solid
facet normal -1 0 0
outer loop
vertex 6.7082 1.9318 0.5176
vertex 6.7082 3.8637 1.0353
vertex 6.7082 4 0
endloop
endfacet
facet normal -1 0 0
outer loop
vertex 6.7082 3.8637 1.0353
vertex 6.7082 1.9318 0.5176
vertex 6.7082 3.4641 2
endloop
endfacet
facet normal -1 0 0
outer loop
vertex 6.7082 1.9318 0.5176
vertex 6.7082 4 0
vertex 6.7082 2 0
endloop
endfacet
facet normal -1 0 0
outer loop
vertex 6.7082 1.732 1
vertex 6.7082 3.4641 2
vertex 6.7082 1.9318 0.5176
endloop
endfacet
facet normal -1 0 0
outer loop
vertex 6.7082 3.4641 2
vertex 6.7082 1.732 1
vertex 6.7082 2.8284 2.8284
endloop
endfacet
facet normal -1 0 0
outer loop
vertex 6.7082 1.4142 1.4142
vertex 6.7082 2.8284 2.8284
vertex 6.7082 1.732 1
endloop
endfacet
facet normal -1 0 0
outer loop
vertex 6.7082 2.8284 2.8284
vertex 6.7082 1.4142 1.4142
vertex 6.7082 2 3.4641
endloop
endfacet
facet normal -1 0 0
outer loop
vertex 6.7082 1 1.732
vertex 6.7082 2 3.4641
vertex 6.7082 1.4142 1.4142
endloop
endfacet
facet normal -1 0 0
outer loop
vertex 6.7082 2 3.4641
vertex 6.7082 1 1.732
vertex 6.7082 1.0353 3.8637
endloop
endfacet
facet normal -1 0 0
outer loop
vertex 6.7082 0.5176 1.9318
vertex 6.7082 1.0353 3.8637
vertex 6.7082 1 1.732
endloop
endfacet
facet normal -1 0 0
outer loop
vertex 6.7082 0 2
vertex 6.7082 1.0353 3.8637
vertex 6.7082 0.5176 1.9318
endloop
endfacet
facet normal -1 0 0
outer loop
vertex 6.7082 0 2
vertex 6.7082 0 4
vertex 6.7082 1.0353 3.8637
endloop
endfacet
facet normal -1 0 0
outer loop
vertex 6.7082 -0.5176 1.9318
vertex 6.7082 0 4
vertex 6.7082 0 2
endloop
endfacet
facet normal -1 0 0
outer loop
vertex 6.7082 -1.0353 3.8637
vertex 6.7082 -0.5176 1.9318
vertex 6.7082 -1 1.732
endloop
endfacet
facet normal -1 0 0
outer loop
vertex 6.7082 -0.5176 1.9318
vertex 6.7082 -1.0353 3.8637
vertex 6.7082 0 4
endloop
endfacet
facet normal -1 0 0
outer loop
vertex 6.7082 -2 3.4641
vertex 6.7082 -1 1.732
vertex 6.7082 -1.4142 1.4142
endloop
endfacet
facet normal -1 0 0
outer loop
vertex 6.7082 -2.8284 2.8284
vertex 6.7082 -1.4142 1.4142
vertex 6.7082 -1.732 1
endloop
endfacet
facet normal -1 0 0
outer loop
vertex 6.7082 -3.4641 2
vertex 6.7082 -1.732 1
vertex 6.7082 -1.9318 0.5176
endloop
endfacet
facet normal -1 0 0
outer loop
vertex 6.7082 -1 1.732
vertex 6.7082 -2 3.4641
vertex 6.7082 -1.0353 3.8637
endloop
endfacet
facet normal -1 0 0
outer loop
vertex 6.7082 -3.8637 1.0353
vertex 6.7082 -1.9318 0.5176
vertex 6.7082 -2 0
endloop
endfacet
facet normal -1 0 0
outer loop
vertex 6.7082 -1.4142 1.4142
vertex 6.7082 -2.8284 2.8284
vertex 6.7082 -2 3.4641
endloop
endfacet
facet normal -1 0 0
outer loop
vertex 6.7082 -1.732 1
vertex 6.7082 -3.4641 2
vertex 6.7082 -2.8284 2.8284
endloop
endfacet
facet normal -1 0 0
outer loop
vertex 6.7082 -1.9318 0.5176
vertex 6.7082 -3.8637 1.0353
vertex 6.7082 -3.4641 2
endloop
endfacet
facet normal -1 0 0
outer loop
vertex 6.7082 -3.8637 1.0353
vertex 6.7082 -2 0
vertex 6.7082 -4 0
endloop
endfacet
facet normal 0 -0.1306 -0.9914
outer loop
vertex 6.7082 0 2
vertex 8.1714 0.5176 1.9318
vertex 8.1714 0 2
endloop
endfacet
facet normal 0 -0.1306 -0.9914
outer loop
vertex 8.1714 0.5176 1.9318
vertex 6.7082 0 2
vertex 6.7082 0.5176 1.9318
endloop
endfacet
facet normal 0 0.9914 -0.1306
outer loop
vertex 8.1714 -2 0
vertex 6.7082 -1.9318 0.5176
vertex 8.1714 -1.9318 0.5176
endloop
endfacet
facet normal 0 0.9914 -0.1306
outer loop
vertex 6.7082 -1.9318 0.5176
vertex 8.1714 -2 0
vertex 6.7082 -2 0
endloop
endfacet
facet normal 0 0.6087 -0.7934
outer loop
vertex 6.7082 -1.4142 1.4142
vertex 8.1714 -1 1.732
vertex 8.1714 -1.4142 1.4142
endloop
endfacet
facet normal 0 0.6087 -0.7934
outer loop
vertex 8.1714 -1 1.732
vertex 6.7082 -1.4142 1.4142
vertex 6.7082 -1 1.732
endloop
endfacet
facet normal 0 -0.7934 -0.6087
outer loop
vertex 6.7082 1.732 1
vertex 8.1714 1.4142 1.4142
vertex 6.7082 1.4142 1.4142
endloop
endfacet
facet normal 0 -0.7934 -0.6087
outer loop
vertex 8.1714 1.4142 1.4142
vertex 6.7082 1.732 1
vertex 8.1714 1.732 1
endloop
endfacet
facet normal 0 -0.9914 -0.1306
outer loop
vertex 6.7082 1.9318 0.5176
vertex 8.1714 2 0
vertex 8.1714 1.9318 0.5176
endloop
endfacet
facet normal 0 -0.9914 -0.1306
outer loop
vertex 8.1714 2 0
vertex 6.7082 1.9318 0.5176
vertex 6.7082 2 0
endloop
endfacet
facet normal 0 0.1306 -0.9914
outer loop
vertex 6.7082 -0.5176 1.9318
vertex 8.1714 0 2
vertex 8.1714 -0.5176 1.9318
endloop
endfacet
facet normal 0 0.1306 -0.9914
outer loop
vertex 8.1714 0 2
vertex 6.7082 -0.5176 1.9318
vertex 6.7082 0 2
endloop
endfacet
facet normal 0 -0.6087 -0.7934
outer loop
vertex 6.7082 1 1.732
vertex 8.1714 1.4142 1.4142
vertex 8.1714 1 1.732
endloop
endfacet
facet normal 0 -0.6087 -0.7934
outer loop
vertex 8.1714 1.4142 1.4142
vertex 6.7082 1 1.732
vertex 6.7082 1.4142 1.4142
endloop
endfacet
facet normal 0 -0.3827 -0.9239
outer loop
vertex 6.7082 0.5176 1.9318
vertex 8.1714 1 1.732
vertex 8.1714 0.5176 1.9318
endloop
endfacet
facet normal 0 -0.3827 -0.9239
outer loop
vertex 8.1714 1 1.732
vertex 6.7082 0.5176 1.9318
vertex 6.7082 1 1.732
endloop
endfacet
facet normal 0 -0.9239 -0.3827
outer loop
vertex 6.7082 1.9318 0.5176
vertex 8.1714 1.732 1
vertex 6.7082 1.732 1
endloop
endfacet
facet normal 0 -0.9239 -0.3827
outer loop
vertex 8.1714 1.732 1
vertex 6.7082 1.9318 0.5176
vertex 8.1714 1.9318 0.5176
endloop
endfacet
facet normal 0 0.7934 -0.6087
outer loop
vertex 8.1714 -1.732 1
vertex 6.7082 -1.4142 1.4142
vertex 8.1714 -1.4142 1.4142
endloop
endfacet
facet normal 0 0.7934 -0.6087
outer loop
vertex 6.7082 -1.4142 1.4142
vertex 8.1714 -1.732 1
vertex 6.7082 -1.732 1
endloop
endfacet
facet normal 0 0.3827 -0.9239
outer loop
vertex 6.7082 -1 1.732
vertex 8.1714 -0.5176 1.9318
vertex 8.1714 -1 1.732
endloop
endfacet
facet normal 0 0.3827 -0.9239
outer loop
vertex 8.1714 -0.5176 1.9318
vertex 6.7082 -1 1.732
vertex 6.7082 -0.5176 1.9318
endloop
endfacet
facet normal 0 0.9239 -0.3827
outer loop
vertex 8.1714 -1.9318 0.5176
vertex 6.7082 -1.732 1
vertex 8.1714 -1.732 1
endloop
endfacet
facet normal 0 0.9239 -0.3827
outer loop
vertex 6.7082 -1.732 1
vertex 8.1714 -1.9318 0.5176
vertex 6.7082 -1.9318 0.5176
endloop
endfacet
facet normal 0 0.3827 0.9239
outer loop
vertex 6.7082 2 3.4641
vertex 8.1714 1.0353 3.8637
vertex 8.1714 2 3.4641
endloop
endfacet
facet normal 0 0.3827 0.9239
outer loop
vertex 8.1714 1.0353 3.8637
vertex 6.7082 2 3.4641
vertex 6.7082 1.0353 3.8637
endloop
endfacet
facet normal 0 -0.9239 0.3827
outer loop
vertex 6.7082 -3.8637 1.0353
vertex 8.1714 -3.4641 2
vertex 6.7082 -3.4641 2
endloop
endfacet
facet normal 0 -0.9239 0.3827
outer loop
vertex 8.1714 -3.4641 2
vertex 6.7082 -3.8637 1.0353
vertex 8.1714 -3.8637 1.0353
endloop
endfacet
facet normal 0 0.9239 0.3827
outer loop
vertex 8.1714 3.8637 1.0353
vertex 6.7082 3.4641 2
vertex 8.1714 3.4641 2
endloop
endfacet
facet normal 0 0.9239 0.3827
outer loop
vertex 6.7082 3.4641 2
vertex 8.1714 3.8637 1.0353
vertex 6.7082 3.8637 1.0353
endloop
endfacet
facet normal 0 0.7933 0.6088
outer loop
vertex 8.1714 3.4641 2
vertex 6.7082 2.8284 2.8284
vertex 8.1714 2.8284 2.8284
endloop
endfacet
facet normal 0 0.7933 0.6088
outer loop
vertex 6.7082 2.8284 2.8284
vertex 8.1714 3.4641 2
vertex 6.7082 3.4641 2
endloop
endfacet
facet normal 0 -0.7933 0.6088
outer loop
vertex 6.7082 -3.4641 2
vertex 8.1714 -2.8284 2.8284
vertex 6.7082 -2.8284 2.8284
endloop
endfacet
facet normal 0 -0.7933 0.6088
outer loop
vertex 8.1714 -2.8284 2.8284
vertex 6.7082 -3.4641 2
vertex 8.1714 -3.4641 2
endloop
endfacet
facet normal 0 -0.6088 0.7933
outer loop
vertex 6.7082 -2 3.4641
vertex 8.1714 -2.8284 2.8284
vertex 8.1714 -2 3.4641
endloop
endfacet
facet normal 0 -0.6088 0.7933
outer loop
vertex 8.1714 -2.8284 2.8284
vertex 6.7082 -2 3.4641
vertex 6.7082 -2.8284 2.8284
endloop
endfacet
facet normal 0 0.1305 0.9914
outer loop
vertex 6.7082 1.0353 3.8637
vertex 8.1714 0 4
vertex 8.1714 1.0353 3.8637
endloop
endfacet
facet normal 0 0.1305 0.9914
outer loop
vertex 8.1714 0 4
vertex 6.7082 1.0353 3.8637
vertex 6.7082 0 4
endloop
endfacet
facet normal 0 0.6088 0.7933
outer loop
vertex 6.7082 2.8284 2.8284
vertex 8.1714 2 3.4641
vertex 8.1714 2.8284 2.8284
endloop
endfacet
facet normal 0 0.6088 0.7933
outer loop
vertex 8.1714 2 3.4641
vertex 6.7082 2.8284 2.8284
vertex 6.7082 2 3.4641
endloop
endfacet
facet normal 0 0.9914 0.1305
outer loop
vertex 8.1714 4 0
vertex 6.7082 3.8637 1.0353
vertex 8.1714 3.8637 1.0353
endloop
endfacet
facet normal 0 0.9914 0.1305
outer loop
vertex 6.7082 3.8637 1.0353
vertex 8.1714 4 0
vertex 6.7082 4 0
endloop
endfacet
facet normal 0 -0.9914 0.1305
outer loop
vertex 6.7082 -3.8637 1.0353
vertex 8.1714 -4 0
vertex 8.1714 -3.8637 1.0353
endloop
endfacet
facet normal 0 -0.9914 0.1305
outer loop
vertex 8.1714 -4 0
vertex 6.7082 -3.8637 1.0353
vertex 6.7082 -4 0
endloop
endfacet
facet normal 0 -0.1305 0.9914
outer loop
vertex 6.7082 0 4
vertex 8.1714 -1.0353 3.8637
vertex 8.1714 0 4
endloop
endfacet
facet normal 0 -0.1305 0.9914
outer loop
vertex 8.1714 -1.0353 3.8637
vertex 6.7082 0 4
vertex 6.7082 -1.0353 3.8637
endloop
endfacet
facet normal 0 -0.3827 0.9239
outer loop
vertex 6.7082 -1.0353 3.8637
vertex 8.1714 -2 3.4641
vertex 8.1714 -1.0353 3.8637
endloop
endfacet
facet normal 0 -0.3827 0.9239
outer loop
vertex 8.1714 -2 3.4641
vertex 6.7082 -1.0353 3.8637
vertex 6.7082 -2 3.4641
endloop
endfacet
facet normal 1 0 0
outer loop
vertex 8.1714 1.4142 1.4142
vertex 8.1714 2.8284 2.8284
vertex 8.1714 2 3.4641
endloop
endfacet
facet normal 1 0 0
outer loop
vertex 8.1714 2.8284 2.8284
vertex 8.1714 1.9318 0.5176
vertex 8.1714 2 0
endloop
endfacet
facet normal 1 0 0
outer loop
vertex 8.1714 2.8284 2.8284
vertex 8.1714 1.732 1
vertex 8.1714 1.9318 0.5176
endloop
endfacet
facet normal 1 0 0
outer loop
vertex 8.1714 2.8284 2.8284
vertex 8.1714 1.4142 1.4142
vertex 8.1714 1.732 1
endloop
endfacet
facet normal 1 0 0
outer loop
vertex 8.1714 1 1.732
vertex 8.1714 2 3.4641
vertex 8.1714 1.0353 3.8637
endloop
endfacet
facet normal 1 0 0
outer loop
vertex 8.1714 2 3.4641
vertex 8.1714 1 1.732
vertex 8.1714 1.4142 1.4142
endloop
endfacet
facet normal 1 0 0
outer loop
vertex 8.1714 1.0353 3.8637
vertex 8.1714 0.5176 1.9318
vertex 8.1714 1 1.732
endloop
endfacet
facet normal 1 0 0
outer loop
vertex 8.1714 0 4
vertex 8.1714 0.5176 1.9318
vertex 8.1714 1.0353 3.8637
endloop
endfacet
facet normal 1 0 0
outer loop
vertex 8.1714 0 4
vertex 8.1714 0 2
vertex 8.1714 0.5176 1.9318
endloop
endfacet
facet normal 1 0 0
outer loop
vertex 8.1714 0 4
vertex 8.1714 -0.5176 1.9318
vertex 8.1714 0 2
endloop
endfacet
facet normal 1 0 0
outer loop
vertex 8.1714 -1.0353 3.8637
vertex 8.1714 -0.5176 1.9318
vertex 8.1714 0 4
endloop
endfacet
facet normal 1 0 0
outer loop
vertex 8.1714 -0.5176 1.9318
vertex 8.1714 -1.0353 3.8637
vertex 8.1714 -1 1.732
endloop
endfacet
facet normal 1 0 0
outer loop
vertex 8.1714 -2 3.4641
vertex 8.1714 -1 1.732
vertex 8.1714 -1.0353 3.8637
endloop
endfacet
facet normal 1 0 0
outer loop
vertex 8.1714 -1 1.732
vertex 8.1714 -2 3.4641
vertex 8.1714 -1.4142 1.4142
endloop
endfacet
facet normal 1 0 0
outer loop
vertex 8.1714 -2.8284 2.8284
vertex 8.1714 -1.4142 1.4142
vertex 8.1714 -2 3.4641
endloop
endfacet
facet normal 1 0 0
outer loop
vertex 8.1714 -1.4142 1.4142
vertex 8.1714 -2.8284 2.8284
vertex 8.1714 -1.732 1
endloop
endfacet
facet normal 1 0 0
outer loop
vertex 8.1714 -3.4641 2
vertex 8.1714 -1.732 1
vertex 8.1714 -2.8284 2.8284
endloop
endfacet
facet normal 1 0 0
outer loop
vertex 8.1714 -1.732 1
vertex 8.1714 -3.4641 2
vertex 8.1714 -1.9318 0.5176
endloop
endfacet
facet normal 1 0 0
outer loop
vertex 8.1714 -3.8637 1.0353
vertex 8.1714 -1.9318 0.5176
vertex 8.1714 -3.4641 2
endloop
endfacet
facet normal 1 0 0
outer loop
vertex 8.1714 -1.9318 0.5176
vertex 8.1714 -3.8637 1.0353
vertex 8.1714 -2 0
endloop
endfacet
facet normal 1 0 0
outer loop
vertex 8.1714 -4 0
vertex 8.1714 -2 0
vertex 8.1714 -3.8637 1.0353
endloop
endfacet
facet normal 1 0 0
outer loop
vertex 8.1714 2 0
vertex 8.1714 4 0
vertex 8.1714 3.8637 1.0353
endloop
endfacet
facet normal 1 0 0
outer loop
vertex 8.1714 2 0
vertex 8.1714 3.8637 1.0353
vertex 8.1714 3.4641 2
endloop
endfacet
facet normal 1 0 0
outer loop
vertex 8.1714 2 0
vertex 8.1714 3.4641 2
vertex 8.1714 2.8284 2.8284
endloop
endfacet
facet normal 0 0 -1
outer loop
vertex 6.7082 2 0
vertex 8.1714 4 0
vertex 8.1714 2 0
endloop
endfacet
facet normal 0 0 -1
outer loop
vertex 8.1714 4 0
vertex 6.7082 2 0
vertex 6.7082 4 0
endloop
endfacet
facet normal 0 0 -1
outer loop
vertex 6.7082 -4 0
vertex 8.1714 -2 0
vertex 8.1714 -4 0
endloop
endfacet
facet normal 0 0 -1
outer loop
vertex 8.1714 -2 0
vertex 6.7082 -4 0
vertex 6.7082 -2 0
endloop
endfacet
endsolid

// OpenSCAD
// file: ../build_environments.scad
// build_environments.scad: modules to build level sections
//

module pool(diameter=10.0, wall_height=2.0, step_width=3.0, connections=[])
{
    difference() {
        union() {
        difference() {
            cylinder(h=0.5,r1=diameter+step_width,r2=diameter+step_width,$fn=48);
            translate([0,0,-0.1])
                cylinder(h=0.7,r1=diameter,r2=diameter,$fn=48);
        }
        difference() {
            cylinder(h=wall_height,r1=diameter+step_width+1.0,r2=diameter+step_width+1.0,$fn=48);
            translate([0,0,-0.1])
                cylinder(h=wall_height+0.2,r1=diameter+step_width,r2=diameter+step_width,$fn=48);
        }
        }
    
        for (c = connections)
        {
            rotate([0,90,0]) {
                angle = atan2(c[1],c[0]);
                rotate([-angle,0,0]) {
                    cylinder(h=diameter+5.0,r1=c[2],r2=c[2],$fn=48);
                }
            }
        }
    }
}

module straight(length=10.0, width=2.0, dy1=0.0, dy2=0.0, dz=0.0)
{
    dims = [0, 0, 0, 0, 0, (dz/length)];
    matrix = [
        [ 1, dims[0], dims[1], 0 ],
        [ dims[2], 1, dims[4], 0 ],
        [ dims[5], dims[3], 1, 0 ],
        [ 0, 0, 0, 1 ]
    ];
    multmatrix(matrix)
    difference() {
        translate([dy1,0,0])
        union() {
            rotate([0,90,0]) {
                difference() {
                    cylinder(h=(length-dy1-dy2),r1=width+1.0,r2=width+1.0,$fn=24);
                    translate([0,0,-0.1])
                        cylinder(h=(length-dy1-dy2+0.2),r1=width,r2=width,$fn=24);
                }
                difference() {
                    cylinder(h=1.0,r1=width+2.0,r2=width+2.0,$fn=24);
                    translate([0,0,-0.1])
                        cylinder(h=1.2,r1=width,r2=width,$fn=24);
                }
                translate([0,0,(length-dy1-dy2)-1.0]) {
                    difference() {
                        cylinder(h=1.0,r1=width+2.0,r2=width+2.0,$fn=24);
                        translate([0,0,-0.1])
                            cylinder(h=1.2,r1=width,r2=width,$fn=24);
                    }
                }
            }
        }
        translate([0,0,-(2*width+4.0)/2])
            cube([3*length,3*length,2*width+4.0],center=true);
    }
}

module curve(p0=[0,0], center=[0,0], dir=1, angle=0.0, width=2.0)
{
    radius = sqrt((p0[0]-center[0])*(p0[0]-center[0]) + (p0[1]-center[1])*(p0[1]-center[1]));
    if (dir == 0) {
        difference() {
            rotate([0,0,-90])
            difference() {
                rotate_extrude(angle = angle, convexity = 10, $fn=32)
                    translate([radius, 0, 0])
                        circle(r = width+1.0,$fn=24);
                rotate([0,0,-1.0])
                    rotate_extrude(angle = angle+2.0, convexity = 10, $fn=32)
                        translate([radius, 0, 0])
                            circle(r = width,$fn=24);
            }
            translate([0,0,-(2*width+4.0)/2])
                cube([5*radius,5*radius,2*width+4.0],center=true);
        }
    }
    else {
        difference() {
            rotate([0,0,90])
            difference() {
                rotate_extrude(angle = -angle, convexity = 10, $fn=32)
                    translate([radius, 0, 0])
                        circle(r = width+1.0,$fn=24);
                rotate([0,0,1.0])
                    rotate_extrude(angle = -angle-2.0, convexity = 10, $fn=32)
                        translate([radius, 0, 0])
                            circle(r = width,$fn=24);
            }
            translate([0,0,-(2*width+4.0)/2])
                cube([5*radius,5*radius,2*width+4.0],center=true);
        }
    }

}

// test pool
//pool(diameter=12.0000, wall_height=3.0000, step_width=3.0000, connections=[[0.0000,-26.0000,2.0000], [23.6074,0.0000,2.0000]]);

// test straight, slope
//straight(length=26.0000, width=2.0000, dy1=11.8322, dy2=6.7082, dz=0.0000);
//straight(length=29.1549, width=12.0000, dy1=0.0000, dy2=0.0000, dz=-15.0000);

// test curve
//curve(p0=[23.6074, 0.0000], center=[23.6074, 5.0000], dir=0, angle=60.1011, width=2.0000);
//curve(p0=[33.6426, 12.4219], center=[37.9771, 9.9295], dir=1, angle=120.4627, width=2.0000);
// main file
use <../build_environments.scad>;
straight(length=8.1714, width=2.0000, dy1=6.7082, dy2=0.0000, dz=0.0000);
